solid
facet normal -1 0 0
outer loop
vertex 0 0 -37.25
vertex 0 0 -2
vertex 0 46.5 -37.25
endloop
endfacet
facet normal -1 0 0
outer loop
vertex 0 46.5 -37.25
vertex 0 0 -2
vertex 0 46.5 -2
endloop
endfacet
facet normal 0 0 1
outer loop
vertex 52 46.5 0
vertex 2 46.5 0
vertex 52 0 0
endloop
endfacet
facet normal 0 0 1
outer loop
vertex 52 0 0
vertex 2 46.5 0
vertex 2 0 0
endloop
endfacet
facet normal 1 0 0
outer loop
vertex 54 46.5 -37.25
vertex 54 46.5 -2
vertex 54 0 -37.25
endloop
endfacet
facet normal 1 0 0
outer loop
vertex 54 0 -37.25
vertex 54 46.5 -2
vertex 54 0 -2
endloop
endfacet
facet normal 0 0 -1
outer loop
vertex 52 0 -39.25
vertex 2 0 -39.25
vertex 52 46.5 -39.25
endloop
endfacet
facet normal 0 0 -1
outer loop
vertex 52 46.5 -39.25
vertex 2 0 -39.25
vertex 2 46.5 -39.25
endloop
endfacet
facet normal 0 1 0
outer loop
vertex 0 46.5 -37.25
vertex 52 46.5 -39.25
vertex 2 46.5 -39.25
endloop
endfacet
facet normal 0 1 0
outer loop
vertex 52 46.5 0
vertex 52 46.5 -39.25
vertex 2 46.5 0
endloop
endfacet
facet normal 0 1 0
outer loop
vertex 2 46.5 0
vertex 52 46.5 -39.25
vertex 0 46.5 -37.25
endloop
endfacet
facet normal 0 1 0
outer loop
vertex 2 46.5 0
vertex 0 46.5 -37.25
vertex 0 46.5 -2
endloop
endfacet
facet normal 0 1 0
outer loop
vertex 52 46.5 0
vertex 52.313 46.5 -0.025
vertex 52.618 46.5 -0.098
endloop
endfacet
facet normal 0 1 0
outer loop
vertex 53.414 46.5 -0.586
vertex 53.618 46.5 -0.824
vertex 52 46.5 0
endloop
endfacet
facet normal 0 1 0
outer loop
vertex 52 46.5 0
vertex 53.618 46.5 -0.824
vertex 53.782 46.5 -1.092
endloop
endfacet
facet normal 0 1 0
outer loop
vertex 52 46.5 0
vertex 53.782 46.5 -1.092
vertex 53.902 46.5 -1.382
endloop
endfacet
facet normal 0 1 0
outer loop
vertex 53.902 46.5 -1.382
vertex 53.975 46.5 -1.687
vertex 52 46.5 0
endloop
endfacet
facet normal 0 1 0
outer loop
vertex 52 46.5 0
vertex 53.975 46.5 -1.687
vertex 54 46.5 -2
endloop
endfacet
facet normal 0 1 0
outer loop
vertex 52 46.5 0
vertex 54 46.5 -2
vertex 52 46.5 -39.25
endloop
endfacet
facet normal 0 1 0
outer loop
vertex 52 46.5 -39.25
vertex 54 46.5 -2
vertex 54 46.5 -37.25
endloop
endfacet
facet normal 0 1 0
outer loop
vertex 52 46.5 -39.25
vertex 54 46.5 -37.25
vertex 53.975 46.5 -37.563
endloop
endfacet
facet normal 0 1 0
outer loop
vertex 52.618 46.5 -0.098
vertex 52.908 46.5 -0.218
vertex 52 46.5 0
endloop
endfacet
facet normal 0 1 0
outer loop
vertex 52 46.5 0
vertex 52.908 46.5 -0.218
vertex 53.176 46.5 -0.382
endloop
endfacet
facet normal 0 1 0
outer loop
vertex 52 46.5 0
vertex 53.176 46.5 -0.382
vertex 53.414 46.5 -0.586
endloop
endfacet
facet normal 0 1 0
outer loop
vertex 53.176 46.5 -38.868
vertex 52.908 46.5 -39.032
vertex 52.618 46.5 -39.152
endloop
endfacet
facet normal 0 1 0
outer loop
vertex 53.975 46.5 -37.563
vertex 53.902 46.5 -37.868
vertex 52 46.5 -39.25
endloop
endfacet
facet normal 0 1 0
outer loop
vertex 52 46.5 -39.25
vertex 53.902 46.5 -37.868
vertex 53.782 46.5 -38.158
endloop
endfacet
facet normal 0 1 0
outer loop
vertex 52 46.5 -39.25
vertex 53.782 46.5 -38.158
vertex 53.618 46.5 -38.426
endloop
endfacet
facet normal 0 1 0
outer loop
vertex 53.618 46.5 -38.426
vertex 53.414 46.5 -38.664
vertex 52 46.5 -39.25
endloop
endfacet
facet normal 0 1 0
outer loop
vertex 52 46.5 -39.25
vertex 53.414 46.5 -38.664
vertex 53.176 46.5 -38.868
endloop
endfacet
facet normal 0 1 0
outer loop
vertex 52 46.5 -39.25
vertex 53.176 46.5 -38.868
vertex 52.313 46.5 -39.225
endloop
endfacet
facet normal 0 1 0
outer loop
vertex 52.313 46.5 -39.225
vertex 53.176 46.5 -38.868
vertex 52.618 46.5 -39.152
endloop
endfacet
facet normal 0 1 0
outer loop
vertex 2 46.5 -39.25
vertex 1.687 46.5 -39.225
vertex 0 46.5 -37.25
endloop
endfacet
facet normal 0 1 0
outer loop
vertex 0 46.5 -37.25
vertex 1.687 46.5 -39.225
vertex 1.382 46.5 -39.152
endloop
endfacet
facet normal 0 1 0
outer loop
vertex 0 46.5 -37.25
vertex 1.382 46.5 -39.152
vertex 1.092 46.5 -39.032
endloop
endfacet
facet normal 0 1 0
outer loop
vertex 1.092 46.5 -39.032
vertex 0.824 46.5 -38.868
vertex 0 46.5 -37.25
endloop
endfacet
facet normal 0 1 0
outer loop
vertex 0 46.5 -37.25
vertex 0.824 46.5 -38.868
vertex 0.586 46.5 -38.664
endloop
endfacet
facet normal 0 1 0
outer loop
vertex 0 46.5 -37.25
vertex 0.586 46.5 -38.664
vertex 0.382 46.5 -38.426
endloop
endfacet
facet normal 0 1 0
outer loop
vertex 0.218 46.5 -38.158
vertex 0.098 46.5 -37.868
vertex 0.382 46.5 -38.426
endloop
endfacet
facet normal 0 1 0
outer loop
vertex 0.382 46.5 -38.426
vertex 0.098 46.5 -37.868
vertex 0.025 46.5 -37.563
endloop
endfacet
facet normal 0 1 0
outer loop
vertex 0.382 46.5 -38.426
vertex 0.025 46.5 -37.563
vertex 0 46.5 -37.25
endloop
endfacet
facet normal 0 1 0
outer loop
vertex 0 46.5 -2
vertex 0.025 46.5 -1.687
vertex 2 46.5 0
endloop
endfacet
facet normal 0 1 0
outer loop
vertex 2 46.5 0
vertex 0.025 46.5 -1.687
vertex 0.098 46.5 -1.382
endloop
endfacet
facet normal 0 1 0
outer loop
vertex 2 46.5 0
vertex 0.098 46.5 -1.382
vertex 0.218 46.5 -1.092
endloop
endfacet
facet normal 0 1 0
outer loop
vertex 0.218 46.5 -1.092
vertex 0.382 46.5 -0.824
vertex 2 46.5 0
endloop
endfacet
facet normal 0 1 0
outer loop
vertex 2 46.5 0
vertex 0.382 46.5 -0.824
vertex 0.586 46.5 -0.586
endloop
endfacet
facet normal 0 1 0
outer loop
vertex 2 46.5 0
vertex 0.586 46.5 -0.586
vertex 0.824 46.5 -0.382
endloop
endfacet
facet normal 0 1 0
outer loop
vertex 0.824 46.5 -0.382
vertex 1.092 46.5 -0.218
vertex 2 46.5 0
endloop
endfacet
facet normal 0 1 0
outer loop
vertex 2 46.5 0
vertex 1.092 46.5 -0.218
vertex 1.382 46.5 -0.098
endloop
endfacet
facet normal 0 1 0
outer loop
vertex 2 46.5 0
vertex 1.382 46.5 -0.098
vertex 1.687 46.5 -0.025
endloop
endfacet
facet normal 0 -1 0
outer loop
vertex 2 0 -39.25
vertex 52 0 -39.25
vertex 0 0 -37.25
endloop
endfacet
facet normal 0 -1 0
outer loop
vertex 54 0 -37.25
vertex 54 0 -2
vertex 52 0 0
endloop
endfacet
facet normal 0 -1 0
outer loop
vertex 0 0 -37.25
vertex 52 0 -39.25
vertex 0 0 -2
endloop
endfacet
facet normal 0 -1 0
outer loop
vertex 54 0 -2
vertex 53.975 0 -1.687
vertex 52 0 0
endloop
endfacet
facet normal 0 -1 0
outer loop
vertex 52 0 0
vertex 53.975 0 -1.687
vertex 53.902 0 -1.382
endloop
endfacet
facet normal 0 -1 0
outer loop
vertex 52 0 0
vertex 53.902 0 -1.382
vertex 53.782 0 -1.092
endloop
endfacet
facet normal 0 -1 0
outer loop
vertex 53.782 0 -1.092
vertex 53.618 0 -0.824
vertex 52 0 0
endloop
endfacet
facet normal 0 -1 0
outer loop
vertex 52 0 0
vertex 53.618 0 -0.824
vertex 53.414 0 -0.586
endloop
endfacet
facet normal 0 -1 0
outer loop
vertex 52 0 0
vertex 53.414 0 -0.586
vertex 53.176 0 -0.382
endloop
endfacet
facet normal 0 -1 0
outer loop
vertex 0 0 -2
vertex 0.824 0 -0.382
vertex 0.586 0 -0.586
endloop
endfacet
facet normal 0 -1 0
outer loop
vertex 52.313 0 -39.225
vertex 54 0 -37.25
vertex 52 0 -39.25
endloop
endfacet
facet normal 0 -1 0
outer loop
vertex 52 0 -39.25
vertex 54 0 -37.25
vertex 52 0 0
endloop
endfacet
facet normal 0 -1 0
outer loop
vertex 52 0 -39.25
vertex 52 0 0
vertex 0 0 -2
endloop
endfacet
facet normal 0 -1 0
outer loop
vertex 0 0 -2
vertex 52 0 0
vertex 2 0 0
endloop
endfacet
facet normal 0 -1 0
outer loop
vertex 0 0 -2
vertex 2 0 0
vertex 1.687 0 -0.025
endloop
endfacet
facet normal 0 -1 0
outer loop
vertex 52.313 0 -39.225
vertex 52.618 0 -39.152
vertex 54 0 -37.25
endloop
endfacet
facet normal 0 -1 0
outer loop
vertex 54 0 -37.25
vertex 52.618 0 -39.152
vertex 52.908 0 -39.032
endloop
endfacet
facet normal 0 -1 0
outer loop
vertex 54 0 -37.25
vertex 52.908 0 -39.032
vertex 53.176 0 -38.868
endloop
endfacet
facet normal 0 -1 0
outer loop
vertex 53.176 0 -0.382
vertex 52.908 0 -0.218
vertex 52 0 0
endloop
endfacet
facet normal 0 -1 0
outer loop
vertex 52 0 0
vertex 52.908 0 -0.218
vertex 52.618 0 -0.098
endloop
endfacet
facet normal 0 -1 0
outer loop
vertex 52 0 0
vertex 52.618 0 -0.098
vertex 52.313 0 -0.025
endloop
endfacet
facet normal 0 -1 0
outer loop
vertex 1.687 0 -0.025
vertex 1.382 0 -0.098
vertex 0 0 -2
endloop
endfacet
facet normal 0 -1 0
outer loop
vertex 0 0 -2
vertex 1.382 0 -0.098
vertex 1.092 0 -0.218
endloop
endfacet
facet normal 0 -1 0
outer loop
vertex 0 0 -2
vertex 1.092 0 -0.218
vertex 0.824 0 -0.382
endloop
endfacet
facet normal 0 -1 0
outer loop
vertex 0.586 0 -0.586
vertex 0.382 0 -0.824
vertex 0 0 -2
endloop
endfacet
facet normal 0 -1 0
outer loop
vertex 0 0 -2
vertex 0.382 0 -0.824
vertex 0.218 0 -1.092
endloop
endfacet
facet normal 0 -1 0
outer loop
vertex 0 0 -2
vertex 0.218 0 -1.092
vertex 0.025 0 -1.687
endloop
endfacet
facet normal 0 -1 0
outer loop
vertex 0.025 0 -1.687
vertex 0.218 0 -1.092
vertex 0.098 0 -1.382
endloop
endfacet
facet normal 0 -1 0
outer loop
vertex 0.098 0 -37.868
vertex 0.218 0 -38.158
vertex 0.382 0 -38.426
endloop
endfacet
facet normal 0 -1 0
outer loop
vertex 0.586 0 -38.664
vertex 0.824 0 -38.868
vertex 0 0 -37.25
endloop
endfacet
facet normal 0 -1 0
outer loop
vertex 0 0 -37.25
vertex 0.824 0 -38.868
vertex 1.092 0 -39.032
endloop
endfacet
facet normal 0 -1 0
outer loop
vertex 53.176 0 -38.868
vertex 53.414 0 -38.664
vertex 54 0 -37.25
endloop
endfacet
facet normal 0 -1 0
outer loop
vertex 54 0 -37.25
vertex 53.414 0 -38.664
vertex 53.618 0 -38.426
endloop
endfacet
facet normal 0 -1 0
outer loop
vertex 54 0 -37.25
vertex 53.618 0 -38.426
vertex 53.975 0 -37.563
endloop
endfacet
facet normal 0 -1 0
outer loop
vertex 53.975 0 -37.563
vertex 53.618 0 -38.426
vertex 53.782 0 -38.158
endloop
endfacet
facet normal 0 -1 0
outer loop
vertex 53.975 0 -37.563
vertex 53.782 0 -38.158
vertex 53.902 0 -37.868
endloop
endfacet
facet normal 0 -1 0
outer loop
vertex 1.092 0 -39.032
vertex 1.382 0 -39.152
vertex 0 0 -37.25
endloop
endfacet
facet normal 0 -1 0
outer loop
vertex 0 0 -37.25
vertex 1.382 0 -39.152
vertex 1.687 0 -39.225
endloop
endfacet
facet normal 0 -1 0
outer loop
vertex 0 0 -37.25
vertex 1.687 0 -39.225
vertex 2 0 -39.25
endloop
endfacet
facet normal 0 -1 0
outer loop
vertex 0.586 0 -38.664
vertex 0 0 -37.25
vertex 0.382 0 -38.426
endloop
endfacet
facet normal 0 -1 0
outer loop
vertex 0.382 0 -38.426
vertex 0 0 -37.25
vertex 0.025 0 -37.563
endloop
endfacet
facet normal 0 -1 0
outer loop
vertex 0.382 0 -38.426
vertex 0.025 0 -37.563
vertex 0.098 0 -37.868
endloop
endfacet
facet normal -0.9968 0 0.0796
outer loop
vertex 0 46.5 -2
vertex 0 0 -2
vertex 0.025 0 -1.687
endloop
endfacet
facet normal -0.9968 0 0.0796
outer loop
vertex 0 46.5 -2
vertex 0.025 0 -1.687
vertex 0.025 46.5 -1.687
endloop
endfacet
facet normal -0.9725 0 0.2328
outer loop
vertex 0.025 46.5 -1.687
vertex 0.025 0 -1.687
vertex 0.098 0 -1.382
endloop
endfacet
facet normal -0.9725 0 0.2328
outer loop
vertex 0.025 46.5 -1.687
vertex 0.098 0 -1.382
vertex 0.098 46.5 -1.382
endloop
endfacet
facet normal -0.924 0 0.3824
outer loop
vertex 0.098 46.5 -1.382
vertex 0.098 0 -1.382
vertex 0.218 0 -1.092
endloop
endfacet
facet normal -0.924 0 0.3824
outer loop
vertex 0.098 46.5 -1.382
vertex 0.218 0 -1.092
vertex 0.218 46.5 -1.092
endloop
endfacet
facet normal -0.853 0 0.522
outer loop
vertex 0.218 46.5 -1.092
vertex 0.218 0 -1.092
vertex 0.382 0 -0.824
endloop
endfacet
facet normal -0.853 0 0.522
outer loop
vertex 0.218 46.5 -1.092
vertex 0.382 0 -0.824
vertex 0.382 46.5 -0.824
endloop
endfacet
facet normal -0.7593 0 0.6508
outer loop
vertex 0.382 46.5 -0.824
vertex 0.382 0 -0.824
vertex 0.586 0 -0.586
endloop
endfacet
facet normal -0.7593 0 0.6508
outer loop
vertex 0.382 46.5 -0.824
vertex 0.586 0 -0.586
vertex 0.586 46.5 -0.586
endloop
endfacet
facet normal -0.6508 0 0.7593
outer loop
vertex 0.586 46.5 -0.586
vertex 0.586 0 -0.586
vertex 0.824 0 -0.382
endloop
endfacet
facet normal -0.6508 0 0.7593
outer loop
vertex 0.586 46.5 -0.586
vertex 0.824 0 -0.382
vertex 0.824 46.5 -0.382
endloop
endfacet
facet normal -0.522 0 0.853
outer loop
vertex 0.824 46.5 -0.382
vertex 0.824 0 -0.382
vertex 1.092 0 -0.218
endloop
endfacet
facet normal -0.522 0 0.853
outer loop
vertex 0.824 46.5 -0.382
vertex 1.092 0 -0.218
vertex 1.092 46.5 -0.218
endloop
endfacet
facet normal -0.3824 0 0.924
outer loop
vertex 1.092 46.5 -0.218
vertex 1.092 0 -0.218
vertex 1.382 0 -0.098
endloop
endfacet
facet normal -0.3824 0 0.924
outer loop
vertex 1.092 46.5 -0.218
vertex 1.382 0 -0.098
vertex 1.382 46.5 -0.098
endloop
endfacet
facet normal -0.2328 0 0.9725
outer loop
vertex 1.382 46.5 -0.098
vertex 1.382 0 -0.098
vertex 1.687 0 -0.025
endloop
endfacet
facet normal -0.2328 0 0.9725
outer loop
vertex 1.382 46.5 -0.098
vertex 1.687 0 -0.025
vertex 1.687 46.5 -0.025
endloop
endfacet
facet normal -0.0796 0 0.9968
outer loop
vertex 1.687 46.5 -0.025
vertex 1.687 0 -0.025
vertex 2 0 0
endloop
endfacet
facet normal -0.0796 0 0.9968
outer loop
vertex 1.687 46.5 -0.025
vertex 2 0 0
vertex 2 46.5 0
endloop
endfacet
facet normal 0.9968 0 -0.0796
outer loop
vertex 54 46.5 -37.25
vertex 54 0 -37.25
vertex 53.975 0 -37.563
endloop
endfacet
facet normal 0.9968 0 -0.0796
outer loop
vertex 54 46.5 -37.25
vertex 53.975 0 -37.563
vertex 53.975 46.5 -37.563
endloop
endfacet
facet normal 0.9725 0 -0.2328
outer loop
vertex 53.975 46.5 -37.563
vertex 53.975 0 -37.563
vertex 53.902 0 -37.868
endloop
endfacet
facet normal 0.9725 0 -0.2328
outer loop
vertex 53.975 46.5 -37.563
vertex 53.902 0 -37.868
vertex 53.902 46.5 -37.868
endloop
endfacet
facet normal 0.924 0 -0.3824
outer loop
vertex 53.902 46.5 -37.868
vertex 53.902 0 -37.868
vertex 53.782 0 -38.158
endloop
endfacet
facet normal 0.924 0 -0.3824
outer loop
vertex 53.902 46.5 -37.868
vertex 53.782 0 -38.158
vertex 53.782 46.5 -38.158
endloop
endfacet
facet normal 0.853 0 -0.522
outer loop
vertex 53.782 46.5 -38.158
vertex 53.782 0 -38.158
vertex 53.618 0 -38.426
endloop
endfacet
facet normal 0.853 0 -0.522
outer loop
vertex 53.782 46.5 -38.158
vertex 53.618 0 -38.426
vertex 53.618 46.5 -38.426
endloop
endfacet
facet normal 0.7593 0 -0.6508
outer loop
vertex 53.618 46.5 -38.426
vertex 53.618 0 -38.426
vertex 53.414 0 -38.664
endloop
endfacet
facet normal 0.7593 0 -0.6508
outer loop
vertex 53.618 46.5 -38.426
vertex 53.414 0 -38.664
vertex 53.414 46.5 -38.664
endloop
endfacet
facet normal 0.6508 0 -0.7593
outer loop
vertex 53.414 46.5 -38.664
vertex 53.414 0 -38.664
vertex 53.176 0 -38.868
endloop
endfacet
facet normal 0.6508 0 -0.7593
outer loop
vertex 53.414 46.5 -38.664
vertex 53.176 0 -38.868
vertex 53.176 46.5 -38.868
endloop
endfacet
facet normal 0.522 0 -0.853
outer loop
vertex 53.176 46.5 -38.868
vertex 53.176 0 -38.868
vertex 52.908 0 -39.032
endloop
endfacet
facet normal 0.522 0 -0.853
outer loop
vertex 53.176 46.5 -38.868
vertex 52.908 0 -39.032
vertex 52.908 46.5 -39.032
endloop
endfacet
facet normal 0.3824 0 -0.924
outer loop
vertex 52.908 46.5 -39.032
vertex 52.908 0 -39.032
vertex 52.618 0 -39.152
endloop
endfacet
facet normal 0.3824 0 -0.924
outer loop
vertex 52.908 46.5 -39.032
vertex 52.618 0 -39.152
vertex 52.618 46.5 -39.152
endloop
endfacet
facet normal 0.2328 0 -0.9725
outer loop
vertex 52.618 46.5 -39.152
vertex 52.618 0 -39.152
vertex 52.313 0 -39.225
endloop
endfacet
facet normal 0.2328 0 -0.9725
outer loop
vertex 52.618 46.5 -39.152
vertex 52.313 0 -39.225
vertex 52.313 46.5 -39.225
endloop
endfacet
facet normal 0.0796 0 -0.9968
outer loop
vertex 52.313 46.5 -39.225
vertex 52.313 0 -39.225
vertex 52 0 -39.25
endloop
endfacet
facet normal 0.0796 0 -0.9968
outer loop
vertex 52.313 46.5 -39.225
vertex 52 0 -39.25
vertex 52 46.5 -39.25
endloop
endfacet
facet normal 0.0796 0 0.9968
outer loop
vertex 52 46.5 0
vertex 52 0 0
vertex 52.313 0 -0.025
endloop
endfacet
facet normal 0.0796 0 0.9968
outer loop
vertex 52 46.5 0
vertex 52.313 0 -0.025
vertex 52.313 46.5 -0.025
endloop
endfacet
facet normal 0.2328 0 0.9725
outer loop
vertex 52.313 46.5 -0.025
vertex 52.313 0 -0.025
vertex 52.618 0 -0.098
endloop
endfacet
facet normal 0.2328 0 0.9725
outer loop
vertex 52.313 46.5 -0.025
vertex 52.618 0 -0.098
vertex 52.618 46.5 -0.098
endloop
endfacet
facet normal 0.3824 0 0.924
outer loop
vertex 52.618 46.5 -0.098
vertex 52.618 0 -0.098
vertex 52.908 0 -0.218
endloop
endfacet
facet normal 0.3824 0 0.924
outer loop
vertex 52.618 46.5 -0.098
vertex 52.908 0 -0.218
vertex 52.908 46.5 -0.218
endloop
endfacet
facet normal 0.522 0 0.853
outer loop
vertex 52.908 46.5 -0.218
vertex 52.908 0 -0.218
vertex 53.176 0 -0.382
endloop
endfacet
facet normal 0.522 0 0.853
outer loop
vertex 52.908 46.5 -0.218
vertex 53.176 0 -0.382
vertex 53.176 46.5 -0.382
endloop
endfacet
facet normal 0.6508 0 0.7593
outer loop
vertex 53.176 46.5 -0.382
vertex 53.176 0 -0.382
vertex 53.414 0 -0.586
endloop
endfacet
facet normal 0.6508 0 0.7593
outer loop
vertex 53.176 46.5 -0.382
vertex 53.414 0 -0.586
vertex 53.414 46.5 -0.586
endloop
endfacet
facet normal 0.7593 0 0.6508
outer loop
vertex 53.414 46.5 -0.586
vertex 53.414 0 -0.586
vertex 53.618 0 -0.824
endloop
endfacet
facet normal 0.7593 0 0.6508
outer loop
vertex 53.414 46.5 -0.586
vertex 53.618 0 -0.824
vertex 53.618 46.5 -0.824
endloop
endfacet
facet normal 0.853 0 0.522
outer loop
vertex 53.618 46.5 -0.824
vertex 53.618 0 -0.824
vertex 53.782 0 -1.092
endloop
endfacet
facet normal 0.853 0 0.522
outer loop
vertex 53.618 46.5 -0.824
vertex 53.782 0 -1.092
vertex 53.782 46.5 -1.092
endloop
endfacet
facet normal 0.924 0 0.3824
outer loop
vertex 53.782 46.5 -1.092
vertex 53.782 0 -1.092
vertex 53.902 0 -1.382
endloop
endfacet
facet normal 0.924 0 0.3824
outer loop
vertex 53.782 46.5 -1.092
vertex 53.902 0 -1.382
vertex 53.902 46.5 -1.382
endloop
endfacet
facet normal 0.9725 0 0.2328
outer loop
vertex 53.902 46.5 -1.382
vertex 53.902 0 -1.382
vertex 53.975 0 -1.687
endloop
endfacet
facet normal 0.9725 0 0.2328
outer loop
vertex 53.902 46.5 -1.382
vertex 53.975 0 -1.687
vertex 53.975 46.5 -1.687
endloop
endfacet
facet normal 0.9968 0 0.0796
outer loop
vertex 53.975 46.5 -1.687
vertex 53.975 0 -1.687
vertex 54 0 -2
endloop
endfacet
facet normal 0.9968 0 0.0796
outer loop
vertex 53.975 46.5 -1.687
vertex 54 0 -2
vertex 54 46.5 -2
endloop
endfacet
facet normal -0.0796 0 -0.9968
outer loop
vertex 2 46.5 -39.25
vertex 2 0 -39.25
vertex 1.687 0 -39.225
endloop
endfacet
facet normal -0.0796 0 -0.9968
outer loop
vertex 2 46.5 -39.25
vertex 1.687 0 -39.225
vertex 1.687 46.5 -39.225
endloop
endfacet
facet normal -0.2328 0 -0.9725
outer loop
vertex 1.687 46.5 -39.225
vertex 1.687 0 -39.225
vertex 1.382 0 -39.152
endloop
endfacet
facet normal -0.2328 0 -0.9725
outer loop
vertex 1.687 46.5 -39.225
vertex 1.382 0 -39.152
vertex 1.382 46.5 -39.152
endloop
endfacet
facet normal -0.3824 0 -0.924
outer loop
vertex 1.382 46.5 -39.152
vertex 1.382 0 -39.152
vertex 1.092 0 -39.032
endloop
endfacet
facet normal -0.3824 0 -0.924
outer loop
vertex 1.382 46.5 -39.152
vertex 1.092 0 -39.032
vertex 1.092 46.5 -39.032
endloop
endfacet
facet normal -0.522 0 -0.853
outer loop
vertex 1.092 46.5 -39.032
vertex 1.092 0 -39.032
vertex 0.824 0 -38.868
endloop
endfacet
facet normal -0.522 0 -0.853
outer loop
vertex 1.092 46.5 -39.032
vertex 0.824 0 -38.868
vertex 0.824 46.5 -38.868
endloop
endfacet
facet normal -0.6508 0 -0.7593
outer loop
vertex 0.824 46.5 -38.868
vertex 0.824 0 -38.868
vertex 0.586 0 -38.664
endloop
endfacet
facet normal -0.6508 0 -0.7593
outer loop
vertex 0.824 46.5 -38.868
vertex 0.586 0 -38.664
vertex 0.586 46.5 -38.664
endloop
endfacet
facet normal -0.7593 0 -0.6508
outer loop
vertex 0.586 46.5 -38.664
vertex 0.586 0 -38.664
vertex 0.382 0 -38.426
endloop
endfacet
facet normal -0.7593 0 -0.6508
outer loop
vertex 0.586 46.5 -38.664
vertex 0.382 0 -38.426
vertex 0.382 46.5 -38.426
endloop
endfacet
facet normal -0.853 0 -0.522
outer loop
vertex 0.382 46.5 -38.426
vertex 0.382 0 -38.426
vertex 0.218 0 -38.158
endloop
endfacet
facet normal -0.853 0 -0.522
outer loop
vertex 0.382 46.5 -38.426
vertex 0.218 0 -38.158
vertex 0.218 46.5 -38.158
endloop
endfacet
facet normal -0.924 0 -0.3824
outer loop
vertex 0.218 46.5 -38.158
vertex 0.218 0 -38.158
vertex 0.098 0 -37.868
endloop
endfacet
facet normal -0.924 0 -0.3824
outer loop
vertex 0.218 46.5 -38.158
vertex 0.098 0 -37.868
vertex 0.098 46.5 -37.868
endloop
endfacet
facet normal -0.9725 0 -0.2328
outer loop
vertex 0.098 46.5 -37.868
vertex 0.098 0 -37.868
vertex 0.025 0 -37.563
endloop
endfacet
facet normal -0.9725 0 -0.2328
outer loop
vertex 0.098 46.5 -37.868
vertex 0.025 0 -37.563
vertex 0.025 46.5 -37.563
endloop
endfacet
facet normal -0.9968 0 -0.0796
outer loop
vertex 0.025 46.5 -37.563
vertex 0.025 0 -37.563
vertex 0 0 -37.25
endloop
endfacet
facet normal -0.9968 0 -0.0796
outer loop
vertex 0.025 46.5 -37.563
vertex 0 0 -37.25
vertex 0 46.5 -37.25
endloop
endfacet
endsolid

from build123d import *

# Parameters (mm, degrees)
SKETCH1_W           = 54
SKETCH1_H           = 39.25
BOSS_EXTRUDE1_DEPTH = 46.5
FILLET1_R           = 2
FILLET2_R           = 2


with BuildPart() as part:
    # Sketch1 → Boss-Extrude1 (new body)
    with BuildSketch(Plane(origin=(0, 0, 0), x_dir=(1, 0, 0), z_dir=(0, 1, 0))):
        with Locations((27, 19.625)):
            Rectangle(SKETCH1_W, SKETCH1_H)
    extrude(amount=BOSS_EXTRUDE1_DEPTH)

    # Fillet1
    fillet1_edges = [part.edges().sort_by_distance(p)[0] for p in [
        (0, 23.25, 0),
    ]]
    fillet(fillet1_edges, radius=FILLET1_R)

    # Fillet2
    fillet2_edges = [part.edges().sort_by_distance(p)[0] for p in [
        (0, 23.25, -39.25),
        (54, 23.25, -39.25),
        (54, 23.25, 0),
    ]]
    fillet(fillet2_edges, radius=FILLET2_R)


solid = part.part
